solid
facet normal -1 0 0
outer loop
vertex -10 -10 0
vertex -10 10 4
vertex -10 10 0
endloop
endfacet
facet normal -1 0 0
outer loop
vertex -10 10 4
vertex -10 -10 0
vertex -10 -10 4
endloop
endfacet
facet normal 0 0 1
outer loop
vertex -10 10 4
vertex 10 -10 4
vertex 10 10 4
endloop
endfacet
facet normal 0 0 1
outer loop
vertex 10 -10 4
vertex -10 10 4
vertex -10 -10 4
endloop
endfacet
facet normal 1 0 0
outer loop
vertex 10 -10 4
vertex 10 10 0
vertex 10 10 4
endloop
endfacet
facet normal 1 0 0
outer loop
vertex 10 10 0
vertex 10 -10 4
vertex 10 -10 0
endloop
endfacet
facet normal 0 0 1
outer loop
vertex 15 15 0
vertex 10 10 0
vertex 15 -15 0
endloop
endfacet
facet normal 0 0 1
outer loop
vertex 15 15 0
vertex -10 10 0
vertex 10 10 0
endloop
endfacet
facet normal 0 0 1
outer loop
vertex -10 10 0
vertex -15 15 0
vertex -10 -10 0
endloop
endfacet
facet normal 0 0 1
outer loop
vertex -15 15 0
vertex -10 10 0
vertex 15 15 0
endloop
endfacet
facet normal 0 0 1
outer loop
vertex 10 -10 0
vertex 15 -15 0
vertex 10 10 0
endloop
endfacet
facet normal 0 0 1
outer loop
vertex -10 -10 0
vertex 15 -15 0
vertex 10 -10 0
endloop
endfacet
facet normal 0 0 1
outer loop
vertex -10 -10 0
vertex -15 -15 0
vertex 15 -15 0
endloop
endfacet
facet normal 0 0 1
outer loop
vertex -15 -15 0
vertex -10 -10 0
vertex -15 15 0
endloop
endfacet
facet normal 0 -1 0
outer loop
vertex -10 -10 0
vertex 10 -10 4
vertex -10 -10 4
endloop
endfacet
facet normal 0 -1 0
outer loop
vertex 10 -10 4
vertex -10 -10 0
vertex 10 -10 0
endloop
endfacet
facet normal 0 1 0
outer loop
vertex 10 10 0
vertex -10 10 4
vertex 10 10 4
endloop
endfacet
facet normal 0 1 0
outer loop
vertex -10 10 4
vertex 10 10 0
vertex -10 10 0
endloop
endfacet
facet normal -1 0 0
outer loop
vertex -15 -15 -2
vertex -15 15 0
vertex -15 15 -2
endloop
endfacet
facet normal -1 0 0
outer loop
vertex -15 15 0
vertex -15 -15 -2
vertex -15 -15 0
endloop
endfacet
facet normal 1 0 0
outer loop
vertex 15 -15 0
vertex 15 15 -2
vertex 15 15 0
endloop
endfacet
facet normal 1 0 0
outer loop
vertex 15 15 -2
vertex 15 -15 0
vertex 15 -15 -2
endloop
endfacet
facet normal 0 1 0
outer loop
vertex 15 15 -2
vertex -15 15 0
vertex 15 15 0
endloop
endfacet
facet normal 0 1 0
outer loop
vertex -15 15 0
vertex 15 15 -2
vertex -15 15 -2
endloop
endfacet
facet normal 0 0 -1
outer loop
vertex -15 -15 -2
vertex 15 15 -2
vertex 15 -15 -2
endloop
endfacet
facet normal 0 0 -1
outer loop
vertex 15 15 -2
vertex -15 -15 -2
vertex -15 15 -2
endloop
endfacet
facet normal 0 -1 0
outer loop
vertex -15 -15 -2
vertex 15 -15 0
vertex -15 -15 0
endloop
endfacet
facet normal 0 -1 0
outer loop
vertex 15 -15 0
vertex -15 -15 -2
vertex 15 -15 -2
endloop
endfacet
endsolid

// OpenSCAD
outer = 30;
inner = 20;
thickness = 4;

connector(outer, inner);

module connector (o, i) {
    union() {
        translate([0, 0, thickness/2])
        cube([i, i, thickness], center=true);

        translate([0, 0, -1])
        cube([o, o, 2], center=true);
    }
}
